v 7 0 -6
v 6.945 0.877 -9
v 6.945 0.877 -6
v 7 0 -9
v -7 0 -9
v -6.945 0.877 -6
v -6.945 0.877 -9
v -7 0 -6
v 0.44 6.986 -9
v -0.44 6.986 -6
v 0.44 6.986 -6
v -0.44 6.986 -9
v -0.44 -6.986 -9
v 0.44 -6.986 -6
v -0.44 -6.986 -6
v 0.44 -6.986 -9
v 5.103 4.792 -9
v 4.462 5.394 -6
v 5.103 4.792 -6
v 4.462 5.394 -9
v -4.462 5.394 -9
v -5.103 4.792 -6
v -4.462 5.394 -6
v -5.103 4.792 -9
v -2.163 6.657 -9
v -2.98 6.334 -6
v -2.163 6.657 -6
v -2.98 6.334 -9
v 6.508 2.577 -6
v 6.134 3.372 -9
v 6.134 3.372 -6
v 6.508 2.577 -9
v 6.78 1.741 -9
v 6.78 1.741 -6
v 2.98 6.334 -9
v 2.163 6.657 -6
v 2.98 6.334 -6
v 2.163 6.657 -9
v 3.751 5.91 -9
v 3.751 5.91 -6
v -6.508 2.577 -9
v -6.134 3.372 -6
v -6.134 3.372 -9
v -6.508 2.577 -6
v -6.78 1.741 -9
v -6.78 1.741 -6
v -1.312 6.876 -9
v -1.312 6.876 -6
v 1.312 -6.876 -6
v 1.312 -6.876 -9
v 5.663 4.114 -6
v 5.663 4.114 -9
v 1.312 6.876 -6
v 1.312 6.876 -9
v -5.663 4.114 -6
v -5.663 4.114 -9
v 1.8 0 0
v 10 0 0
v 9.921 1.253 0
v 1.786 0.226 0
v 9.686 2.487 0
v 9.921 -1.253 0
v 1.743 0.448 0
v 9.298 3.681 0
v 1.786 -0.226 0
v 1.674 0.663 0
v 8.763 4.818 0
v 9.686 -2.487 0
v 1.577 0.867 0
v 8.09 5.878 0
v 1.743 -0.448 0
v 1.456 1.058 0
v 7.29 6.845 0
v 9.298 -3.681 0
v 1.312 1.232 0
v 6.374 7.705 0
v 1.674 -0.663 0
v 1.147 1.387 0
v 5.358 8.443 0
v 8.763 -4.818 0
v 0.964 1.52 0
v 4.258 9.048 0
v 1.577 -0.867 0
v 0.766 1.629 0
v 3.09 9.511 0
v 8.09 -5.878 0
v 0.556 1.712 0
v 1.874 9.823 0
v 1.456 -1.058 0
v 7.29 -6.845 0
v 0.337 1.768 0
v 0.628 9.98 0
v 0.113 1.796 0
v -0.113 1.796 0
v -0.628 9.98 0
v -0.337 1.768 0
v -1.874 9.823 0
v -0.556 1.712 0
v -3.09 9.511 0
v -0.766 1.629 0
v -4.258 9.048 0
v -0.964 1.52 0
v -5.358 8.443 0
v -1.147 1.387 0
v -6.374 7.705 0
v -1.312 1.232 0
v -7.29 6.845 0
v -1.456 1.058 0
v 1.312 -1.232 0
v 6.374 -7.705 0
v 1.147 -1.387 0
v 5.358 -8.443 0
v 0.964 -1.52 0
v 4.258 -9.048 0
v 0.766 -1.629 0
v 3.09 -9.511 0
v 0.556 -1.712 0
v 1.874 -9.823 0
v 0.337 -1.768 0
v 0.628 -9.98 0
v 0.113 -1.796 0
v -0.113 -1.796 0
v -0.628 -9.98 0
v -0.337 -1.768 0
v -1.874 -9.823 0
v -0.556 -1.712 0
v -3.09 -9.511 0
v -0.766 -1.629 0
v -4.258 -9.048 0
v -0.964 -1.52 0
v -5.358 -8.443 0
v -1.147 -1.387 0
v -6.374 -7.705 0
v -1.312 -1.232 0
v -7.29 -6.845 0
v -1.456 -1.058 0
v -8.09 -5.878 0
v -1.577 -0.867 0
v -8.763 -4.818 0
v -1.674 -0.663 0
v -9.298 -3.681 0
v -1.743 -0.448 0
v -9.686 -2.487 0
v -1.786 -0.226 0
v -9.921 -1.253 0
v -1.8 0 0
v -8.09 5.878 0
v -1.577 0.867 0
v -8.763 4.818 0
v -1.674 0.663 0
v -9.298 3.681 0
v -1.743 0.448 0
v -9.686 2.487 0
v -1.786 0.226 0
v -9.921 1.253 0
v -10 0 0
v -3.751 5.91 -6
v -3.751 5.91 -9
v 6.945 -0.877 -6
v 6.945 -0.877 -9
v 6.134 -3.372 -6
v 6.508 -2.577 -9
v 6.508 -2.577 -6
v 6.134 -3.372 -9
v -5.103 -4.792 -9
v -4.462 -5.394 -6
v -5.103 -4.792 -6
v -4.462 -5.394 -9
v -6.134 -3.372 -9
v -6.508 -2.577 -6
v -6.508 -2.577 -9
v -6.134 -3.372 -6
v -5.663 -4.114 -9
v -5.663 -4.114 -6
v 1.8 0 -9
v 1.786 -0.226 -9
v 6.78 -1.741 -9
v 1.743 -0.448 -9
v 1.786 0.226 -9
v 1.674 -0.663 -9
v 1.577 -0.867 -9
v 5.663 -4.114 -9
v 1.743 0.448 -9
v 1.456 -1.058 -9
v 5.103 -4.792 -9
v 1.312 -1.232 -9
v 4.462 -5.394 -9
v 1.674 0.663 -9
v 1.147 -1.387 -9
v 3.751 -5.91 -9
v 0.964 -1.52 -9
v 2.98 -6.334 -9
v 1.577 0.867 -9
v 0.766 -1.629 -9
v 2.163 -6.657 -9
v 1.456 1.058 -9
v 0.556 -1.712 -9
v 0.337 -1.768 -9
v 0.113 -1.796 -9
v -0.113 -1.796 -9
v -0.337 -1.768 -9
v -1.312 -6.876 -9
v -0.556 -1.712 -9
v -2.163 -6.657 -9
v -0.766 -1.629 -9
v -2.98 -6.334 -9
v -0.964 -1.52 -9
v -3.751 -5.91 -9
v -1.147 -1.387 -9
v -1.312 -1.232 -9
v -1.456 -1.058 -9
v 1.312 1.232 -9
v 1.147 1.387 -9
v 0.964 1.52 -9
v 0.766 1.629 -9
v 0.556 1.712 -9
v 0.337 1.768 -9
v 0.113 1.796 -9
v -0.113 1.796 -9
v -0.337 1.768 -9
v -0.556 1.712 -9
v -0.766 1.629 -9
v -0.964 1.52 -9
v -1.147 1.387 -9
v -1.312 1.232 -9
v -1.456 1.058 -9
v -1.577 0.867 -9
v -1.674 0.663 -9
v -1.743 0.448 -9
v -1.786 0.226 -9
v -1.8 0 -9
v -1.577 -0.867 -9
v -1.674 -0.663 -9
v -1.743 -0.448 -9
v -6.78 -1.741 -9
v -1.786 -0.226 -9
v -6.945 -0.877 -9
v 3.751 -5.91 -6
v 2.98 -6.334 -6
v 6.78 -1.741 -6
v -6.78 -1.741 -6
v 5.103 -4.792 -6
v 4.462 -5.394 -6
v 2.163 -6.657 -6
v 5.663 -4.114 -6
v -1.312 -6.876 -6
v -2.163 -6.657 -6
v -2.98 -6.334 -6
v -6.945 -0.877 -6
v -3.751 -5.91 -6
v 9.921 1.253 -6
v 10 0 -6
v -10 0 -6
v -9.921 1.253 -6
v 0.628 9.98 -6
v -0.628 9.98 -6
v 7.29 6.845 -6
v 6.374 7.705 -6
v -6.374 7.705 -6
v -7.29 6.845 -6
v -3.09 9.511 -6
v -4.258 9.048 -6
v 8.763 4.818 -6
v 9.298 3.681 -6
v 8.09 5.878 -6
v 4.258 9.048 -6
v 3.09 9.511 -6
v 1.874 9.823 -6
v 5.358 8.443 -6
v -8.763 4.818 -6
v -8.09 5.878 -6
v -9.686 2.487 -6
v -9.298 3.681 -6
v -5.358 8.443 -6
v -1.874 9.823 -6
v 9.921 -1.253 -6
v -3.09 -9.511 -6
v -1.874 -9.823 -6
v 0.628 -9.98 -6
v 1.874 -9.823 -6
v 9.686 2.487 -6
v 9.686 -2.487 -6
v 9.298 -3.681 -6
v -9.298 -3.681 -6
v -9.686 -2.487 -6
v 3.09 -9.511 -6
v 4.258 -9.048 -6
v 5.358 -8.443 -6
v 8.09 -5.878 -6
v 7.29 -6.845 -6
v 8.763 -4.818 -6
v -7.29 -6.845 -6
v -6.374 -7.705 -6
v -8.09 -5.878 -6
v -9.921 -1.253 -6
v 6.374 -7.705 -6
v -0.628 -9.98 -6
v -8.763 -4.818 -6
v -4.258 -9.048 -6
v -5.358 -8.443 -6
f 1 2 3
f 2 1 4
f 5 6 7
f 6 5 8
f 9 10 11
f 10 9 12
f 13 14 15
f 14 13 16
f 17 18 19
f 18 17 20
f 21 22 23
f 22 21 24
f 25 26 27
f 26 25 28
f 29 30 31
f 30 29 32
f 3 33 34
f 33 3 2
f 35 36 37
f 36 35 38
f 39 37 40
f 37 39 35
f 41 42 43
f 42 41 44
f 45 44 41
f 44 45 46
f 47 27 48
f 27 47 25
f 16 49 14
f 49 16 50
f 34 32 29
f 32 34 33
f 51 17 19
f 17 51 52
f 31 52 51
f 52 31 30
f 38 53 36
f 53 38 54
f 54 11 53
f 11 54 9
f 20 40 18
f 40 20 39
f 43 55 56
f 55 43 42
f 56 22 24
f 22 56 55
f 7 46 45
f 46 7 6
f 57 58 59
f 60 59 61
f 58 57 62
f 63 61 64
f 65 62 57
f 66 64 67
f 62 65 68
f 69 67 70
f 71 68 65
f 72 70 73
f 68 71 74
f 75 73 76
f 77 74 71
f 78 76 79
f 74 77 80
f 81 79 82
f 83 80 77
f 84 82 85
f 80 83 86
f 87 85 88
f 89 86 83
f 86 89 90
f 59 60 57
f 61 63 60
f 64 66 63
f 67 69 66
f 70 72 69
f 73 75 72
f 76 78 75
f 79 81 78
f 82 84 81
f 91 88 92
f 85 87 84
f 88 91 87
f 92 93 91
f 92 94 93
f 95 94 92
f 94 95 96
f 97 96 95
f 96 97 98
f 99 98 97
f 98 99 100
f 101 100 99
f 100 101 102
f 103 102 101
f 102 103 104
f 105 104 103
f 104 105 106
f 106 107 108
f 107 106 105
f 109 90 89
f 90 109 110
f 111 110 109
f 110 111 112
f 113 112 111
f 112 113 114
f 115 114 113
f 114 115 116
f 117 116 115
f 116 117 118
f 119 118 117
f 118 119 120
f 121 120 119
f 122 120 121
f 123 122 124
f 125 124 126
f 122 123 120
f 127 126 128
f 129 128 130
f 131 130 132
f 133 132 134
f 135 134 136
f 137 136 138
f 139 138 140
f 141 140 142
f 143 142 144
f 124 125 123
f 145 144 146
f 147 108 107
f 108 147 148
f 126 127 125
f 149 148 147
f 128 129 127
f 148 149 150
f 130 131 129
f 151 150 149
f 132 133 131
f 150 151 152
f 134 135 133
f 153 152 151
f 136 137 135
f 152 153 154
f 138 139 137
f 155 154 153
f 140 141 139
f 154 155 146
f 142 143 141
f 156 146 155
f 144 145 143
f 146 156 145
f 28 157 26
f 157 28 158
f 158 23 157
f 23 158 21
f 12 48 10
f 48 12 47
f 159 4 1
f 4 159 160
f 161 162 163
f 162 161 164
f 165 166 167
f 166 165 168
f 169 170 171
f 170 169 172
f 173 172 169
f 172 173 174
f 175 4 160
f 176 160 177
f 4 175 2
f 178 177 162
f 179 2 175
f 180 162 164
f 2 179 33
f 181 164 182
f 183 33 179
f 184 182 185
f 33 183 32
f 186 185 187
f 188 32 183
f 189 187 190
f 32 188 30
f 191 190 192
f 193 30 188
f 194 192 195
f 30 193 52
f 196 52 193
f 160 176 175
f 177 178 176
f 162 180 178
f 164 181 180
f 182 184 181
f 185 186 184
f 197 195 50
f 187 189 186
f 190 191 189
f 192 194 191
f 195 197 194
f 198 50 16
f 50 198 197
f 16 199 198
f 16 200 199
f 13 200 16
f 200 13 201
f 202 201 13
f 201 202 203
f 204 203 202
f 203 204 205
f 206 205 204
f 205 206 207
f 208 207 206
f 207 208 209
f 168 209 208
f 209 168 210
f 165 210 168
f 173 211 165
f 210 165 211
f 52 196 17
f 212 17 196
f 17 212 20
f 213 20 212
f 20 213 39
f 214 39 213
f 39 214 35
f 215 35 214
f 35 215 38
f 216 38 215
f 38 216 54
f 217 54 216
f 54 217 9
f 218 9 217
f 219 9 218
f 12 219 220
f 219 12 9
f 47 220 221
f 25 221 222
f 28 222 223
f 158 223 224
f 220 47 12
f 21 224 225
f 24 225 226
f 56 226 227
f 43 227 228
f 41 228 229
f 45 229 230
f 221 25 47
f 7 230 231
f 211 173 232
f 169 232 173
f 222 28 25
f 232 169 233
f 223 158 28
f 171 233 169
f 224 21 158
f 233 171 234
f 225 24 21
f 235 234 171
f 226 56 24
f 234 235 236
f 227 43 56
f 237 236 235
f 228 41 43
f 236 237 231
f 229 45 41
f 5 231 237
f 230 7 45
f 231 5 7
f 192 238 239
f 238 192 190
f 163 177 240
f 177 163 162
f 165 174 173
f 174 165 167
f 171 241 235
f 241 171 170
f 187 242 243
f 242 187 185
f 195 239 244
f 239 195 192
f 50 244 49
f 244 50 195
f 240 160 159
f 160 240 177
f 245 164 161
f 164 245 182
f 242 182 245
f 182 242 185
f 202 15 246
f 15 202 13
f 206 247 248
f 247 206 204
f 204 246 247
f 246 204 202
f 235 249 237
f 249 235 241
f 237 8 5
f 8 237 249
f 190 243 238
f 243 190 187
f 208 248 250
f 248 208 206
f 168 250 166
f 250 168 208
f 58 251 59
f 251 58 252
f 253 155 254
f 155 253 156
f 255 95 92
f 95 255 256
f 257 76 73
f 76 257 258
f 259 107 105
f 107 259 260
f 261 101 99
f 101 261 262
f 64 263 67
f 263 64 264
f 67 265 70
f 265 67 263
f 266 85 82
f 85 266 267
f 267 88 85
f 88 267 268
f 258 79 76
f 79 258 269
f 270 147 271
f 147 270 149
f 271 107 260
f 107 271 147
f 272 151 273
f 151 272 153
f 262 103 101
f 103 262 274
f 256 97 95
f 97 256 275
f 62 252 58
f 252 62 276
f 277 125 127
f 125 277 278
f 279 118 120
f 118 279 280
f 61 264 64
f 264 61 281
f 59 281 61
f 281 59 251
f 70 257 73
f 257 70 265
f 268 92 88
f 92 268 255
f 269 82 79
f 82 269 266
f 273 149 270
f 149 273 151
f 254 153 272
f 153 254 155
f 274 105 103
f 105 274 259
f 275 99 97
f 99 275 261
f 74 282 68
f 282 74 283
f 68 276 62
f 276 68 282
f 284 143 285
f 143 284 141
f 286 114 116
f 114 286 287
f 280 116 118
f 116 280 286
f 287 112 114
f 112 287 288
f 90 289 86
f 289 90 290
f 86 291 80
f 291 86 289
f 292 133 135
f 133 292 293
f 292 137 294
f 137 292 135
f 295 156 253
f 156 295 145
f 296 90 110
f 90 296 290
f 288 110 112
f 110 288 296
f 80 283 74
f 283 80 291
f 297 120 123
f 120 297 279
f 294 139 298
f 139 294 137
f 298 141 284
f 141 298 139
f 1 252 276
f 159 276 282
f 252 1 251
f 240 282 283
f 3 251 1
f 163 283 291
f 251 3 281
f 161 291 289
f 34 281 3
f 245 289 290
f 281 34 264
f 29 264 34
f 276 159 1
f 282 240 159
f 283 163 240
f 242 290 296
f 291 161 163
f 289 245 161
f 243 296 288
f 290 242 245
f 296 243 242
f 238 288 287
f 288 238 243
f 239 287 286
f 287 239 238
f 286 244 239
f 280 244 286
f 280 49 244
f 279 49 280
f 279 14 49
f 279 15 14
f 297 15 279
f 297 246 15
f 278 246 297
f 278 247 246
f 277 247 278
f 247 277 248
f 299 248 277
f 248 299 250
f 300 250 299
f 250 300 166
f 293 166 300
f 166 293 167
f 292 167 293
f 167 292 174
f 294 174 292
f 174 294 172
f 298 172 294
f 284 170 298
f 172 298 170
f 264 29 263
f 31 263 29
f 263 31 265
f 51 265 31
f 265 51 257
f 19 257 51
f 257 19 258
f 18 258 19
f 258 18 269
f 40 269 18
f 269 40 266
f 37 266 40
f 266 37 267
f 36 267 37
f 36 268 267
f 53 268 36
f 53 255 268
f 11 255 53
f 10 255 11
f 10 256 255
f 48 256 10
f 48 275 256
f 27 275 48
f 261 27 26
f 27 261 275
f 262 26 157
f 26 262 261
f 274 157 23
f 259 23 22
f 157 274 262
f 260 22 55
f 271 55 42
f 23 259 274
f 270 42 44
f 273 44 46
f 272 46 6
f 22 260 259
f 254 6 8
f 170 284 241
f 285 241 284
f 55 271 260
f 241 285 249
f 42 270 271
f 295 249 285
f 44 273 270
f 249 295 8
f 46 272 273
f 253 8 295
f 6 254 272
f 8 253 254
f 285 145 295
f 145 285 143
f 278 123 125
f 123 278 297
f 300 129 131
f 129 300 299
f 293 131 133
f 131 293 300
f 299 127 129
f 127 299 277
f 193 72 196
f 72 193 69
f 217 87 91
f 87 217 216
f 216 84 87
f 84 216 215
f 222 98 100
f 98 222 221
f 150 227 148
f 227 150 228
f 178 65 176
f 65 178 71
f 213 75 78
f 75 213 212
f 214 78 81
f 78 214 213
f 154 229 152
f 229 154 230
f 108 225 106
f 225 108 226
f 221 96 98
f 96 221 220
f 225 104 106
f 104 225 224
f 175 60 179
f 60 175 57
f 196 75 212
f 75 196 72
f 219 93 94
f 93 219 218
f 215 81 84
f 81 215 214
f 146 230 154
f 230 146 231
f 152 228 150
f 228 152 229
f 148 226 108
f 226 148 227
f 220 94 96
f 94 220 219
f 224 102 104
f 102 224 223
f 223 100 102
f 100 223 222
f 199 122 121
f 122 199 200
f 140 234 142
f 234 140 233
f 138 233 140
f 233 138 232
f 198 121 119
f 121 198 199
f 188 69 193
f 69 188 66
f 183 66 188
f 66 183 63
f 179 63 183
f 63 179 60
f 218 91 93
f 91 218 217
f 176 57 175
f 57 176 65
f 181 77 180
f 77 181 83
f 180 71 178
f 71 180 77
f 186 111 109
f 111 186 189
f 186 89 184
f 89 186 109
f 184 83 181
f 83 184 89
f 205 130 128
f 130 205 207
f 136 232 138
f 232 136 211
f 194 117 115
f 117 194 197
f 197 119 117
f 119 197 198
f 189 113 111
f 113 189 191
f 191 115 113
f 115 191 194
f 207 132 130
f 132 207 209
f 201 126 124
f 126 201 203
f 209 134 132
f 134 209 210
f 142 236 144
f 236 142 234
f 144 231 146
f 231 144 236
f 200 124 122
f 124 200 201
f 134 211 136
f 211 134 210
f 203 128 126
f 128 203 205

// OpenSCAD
$fn = 50;


difference() {
	union() {
		translate(v = [0, 0, -9.0000000000]) {
			cylinder(h = 9, r = 7.0000000000);
		}
		translate(v = [0, 0, -6.0000000000]) {
			cylinder(h = 6, r = 10.0000000000);
		}
	}
	union() {
		#translate(v = [0, 0, -9]) {
			cylinder(h = 9, r = 1.8000000000);
		}
	}
}
